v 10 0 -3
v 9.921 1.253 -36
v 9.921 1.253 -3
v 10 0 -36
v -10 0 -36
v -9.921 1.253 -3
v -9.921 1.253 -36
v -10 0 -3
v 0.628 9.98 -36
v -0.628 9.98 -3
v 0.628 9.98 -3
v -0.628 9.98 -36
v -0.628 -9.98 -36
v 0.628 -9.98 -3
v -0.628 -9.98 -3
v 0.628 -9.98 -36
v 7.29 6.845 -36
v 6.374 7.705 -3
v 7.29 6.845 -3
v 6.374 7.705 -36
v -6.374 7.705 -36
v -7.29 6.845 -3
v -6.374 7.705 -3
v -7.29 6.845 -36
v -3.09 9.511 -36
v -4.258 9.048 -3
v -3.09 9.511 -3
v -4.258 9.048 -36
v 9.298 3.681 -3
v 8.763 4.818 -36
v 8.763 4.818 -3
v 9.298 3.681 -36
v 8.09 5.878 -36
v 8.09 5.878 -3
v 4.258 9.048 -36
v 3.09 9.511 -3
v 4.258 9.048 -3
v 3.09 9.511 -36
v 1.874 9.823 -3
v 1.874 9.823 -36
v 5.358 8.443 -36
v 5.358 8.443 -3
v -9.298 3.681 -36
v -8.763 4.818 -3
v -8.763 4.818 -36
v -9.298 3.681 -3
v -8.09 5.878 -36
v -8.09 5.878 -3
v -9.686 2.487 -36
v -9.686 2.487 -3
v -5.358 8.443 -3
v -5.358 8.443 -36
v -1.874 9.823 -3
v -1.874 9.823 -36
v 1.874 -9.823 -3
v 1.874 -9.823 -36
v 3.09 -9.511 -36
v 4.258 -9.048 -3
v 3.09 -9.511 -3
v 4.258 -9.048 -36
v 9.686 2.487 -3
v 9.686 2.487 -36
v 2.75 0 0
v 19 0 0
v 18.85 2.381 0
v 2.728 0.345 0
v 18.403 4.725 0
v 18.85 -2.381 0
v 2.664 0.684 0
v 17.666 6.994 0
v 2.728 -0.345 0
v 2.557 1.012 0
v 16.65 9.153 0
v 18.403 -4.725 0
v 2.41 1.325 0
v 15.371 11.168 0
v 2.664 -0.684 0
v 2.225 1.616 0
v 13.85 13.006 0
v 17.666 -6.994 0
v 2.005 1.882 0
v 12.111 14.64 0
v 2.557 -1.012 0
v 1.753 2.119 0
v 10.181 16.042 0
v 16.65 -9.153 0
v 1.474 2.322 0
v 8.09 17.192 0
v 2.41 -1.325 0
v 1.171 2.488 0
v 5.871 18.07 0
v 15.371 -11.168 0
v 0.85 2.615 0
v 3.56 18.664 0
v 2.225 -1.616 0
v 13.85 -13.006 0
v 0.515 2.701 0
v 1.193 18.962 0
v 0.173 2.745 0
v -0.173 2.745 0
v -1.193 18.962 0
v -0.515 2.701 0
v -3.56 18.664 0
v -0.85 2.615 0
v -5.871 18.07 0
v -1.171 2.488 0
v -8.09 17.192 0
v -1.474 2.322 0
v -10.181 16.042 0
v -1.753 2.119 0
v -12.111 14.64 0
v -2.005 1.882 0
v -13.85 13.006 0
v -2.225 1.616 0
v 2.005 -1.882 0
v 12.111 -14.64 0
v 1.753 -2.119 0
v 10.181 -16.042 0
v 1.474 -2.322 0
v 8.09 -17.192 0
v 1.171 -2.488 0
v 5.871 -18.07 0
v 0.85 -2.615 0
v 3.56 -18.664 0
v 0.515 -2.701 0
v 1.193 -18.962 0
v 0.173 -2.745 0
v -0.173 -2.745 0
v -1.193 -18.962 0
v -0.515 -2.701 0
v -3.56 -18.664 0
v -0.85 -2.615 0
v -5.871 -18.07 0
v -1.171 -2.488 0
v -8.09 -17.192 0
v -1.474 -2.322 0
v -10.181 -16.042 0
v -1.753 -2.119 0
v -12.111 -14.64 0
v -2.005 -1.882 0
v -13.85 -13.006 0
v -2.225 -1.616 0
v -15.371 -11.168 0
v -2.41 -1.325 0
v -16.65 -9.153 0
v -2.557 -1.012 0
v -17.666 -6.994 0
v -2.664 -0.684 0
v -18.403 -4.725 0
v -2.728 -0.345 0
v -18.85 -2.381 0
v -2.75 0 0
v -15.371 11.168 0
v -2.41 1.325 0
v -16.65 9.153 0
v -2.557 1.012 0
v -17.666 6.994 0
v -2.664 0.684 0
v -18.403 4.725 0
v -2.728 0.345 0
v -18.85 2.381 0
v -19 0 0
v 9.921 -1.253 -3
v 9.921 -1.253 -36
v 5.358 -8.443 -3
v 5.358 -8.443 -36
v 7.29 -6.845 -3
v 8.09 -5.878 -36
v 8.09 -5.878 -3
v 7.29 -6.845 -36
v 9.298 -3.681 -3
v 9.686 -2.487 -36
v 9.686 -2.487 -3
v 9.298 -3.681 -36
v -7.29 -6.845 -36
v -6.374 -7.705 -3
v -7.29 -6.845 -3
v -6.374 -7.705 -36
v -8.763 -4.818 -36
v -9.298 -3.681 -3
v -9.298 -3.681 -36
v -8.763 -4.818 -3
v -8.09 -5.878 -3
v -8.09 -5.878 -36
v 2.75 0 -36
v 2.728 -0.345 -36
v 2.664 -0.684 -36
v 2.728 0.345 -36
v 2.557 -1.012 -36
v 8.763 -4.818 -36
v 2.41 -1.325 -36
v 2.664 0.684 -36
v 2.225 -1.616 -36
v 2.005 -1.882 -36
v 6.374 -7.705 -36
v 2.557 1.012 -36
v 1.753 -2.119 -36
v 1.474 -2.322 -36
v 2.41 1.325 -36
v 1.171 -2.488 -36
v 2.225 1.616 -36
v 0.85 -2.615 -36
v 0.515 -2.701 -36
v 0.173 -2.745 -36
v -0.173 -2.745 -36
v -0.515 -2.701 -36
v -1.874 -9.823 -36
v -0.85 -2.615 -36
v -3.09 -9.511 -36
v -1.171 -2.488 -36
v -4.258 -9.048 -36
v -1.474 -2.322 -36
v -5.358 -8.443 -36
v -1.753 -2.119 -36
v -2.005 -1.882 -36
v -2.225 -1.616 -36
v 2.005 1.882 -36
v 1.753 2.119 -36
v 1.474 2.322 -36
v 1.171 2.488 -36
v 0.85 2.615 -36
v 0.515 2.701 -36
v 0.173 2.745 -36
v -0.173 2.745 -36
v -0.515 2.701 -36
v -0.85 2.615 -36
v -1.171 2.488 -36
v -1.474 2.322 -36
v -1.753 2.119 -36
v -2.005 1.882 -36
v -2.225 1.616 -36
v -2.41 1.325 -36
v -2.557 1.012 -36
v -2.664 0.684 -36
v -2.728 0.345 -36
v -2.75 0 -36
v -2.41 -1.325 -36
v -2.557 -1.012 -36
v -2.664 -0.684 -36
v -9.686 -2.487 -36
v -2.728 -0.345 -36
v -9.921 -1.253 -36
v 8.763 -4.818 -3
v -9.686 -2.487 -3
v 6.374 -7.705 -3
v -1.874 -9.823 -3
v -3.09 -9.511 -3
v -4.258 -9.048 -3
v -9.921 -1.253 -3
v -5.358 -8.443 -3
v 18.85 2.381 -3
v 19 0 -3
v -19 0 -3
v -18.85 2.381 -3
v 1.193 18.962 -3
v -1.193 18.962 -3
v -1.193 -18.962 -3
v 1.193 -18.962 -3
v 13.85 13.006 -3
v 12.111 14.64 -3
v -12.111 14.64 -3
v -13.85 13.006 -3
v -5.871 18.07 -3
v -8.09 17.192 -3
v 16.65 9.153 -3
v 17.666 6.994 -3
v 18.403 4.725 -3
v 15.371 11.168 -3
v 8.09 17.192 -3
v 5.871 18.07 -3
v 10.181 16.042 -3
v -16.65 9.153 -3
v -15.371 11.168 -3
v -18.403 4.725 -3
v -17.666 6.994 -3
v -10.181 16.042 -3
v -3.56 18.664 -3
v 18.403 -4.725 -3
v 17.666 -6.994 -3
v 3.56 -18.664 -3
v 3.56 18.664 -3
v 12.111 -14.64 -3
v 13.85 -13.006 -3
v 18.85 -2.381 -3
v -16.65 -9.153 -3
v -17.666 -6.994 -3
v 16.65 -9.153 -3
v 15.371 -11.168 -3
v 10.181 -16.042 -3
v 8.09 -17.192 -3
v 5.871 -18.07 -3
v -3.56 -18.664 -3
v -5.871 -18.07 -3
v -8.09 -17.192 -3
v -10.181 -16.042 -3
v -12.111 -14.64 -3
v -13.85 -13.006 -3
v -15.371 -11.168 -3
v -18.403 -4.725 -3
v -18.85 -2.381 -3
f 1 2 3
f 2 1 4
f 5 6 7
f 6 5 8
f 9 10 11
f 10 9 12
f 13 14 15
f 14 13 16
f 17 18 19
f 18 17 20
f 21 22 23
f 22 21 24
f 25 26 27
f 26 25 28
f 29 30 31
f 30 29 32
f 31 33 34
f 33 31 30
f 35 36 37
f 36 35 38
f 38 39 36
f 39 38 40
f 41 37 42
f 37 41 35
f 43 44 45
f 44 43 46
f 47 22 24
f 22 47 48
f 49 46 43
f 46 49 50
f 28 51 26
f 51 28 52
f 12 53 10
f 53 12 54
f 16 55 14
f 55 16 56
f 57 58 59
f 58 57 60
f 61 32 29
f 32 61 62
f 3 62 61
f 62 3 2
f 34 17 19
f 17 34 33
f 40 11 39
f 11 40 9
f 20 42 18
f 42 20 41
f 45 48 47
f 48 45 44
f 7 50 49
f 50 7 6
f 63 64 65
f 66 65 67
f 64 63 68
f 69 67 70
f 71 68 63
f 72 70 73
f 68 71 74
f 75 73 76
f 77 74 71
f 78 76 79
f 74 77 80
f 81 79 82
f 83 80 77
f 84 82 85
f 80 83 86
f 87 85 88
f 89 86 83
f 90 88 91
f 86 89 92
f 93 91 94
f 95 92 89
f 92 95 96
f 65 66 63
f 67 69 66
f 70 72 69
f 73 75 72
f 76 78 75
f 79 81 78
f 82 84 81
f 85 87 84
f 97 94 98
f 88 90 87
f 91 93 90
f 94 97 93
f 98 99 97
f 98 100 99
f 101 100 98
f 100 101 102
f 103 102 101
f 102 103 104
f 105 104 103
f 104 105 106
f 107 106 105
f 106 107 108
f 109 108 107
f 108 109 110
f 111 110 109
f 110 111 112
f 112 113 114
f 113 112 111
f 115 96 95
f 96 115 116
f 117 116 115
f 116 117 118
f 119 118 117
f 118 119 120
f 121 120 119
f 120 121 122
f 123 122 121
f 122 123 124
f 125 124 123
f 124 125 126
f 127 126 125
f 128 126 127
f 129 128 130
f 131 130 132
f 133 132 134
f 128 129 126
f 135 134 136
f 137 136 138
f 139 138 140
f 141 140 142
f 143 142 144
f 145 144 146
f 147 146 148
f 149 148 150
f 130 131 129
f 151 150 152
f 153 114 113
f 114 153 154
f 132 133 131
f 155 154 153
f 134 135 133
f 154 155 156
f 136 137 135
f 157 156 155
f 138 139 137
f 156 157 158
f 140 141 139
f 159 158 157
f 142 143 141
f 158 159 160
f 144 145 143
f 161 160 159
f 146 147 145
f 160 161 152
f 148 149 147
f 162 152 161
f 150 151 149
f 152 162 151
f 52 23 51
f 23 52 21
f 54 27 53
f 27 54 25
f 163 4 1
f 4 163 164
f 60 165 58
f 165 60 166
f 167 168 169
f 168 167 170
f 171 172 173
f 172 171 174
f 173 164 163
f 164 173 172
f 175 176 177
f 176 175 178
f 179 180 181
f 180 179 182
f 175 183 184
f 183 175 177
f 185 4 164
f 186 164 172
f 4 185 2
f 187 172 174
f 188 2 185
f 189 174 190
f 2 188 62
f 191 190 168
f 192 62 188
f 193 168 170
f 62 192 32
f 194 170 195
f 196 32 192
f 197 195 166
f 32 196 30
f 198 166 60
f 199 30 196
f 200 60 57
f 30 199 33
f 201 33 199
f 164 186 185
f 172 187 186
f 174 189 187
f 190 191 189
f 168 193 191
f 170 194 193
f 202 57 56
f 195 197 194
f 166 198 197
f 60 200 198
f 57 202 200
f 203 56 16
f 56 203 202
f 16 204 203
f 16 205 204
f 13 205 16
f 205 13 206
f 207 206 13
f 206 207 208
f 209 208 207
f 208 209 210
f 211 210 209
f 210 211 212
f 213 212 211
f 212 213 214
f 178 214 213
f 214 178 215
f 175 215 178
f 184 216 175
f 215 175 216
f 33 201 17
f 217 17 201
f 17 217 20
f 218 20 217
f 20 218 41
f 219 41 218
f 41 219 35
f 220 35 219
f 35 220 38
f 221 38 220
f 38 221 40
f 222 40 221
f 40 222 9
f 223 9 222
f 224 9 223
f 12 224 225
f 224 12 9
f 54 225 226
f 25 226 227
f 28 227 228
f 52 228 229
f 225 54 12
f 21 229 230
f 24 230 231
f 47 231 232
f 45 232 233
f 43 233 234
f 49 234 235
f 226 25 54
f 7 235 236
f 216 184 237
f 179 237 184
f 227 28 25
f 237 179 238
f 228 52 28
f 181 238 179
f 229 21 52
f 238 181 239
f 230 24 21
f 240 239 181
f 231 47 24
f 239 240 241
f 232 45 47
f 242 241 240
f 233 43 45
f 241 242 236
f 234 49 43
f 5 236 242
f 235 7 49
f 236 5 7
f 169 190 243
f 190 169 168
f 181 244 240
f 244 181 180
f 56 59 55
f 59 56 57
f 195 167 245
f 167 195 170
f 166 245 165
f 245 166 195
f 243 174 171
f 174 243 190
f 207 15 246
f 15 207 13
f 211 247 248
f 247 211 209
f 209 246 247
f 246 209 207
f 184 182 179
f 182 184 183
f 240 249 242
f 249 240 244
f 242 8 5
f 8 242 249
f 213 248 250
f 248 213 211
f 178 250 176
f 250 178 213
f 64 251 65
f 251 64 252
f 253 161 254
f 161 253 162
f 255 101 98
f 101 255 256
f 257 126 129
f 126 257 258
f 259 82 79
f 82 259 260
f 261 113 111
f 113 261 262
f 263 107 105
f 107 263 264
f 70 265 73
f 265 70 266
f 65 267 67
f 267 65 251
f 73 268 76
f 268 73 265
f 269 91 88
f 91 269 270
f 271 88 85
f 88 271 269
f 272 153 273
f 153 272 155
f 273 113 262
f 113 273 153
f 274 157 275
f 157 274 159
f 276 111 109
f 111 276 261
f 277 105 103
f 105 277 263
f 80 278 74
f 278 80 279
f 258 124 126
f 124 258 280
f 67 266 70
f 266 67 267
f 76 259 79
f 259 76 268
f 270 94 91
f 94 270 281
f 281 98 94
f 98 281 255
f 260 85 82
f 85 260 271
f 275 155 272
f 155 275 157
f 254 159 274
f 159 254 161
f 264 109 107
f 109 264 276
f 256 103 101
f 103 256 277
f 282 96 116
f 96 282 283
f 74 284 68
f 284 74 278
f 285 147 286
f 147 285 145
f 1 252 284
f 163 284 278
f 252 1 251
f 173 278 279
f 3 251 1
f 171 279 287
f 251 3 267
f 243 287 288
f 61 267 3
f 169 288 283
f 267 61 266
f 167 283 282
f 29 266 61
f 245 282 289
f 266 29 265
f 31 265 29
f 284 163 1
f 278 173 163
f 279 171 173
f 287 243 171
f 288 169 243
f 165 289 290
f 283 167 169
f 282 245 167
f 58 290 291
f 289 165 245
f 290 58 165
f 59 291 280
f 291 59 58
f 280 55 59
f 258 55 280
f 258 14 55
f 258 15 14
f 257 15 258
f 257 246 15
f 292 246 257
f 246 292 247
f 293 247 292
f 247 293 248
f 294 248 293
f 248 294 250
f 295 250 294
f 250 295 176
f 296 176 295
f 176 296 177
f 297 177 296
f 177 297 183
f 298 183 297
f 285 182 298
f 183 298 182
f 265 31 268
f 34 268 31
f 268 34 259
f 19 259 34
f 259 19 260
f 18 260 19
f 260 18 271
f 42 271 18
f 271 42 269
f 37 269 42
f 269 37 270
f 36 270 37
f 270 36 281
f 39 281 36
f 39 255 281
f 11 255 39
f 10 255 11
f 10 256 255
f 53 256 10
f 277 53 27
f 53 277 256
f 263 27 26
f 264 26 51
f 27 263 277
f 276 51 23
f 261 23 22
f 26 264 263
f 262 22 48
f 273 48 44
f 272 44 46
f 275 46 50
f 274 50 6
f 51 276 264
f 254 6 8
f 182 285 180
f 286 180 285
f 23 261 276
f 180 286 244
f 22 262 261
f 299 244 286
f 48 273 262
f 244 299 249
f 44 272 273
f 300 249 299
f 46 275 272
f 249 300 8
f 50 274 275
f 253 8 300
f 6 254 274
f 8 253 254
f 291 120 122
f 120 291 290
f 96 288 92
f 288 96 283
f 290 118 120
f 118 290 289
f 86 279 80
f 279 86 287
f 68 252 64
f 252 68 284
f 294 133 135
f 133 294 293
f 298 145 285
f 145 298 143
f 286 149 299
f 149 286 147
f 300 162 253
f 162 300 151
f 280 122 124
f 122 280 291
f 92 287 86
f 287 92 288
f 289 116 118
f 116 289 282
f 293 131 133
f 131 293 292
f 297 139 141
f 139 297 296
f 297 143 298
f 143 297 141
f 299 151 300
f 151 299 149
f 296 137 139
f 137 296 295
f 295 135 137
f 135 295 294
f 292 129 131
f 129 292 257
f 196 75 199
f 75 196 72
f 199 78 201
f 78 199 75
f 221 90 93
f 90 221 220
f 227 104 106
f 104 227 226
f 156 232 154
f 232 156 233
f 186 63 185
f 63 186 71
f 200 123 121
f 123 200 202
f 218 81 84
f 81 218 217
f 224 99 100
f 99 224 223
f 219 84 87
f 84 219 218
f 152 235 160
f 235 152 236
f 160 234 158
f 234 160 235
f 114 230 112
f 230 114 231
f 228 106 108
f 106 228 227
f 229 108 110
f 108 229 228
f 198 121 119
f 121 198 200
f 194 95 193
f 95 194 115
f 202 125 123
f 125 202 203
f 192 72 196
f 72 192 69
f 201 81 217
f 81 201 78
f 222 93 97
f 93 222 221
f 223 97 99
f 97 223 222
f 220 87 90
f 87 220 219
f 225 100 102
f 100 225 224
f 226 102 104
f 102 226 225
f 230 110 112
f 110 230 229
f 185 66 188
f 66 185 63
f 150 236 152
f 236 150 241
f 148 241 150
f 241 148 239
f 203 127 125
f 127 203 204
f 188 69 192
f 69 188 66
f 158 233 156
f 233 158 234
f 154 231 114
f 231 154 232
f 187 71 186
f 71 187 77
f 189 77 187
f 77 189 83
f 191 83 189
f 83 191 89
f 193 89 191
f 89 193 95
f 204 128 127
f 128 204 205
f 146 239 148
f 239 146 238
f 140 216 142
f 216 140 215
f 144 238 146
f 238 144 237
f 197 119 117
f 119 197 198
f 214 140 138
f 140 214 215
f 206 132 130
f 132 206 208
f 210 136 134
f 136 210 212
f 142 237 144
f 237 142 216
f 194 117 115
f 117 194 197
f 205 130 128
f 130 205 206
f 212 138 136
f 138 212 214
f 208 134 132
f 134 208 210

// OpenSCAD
$fn = 50;


difference() {
	union() {
		translate(v = [0, 0, -36.0000000000]) {
			cylinder(h = 36, r = 10.0000000000);
		}
		translate(v = [0, 0, -3.0000000000]) {
			cylinder(h = 3, r = 19.0000000000);
		}
	}
	union() {
		#translate(v = [0, 0, -36]) {
			cylinder(h = 36, r = 2.7500000000);
		}
	}
}
